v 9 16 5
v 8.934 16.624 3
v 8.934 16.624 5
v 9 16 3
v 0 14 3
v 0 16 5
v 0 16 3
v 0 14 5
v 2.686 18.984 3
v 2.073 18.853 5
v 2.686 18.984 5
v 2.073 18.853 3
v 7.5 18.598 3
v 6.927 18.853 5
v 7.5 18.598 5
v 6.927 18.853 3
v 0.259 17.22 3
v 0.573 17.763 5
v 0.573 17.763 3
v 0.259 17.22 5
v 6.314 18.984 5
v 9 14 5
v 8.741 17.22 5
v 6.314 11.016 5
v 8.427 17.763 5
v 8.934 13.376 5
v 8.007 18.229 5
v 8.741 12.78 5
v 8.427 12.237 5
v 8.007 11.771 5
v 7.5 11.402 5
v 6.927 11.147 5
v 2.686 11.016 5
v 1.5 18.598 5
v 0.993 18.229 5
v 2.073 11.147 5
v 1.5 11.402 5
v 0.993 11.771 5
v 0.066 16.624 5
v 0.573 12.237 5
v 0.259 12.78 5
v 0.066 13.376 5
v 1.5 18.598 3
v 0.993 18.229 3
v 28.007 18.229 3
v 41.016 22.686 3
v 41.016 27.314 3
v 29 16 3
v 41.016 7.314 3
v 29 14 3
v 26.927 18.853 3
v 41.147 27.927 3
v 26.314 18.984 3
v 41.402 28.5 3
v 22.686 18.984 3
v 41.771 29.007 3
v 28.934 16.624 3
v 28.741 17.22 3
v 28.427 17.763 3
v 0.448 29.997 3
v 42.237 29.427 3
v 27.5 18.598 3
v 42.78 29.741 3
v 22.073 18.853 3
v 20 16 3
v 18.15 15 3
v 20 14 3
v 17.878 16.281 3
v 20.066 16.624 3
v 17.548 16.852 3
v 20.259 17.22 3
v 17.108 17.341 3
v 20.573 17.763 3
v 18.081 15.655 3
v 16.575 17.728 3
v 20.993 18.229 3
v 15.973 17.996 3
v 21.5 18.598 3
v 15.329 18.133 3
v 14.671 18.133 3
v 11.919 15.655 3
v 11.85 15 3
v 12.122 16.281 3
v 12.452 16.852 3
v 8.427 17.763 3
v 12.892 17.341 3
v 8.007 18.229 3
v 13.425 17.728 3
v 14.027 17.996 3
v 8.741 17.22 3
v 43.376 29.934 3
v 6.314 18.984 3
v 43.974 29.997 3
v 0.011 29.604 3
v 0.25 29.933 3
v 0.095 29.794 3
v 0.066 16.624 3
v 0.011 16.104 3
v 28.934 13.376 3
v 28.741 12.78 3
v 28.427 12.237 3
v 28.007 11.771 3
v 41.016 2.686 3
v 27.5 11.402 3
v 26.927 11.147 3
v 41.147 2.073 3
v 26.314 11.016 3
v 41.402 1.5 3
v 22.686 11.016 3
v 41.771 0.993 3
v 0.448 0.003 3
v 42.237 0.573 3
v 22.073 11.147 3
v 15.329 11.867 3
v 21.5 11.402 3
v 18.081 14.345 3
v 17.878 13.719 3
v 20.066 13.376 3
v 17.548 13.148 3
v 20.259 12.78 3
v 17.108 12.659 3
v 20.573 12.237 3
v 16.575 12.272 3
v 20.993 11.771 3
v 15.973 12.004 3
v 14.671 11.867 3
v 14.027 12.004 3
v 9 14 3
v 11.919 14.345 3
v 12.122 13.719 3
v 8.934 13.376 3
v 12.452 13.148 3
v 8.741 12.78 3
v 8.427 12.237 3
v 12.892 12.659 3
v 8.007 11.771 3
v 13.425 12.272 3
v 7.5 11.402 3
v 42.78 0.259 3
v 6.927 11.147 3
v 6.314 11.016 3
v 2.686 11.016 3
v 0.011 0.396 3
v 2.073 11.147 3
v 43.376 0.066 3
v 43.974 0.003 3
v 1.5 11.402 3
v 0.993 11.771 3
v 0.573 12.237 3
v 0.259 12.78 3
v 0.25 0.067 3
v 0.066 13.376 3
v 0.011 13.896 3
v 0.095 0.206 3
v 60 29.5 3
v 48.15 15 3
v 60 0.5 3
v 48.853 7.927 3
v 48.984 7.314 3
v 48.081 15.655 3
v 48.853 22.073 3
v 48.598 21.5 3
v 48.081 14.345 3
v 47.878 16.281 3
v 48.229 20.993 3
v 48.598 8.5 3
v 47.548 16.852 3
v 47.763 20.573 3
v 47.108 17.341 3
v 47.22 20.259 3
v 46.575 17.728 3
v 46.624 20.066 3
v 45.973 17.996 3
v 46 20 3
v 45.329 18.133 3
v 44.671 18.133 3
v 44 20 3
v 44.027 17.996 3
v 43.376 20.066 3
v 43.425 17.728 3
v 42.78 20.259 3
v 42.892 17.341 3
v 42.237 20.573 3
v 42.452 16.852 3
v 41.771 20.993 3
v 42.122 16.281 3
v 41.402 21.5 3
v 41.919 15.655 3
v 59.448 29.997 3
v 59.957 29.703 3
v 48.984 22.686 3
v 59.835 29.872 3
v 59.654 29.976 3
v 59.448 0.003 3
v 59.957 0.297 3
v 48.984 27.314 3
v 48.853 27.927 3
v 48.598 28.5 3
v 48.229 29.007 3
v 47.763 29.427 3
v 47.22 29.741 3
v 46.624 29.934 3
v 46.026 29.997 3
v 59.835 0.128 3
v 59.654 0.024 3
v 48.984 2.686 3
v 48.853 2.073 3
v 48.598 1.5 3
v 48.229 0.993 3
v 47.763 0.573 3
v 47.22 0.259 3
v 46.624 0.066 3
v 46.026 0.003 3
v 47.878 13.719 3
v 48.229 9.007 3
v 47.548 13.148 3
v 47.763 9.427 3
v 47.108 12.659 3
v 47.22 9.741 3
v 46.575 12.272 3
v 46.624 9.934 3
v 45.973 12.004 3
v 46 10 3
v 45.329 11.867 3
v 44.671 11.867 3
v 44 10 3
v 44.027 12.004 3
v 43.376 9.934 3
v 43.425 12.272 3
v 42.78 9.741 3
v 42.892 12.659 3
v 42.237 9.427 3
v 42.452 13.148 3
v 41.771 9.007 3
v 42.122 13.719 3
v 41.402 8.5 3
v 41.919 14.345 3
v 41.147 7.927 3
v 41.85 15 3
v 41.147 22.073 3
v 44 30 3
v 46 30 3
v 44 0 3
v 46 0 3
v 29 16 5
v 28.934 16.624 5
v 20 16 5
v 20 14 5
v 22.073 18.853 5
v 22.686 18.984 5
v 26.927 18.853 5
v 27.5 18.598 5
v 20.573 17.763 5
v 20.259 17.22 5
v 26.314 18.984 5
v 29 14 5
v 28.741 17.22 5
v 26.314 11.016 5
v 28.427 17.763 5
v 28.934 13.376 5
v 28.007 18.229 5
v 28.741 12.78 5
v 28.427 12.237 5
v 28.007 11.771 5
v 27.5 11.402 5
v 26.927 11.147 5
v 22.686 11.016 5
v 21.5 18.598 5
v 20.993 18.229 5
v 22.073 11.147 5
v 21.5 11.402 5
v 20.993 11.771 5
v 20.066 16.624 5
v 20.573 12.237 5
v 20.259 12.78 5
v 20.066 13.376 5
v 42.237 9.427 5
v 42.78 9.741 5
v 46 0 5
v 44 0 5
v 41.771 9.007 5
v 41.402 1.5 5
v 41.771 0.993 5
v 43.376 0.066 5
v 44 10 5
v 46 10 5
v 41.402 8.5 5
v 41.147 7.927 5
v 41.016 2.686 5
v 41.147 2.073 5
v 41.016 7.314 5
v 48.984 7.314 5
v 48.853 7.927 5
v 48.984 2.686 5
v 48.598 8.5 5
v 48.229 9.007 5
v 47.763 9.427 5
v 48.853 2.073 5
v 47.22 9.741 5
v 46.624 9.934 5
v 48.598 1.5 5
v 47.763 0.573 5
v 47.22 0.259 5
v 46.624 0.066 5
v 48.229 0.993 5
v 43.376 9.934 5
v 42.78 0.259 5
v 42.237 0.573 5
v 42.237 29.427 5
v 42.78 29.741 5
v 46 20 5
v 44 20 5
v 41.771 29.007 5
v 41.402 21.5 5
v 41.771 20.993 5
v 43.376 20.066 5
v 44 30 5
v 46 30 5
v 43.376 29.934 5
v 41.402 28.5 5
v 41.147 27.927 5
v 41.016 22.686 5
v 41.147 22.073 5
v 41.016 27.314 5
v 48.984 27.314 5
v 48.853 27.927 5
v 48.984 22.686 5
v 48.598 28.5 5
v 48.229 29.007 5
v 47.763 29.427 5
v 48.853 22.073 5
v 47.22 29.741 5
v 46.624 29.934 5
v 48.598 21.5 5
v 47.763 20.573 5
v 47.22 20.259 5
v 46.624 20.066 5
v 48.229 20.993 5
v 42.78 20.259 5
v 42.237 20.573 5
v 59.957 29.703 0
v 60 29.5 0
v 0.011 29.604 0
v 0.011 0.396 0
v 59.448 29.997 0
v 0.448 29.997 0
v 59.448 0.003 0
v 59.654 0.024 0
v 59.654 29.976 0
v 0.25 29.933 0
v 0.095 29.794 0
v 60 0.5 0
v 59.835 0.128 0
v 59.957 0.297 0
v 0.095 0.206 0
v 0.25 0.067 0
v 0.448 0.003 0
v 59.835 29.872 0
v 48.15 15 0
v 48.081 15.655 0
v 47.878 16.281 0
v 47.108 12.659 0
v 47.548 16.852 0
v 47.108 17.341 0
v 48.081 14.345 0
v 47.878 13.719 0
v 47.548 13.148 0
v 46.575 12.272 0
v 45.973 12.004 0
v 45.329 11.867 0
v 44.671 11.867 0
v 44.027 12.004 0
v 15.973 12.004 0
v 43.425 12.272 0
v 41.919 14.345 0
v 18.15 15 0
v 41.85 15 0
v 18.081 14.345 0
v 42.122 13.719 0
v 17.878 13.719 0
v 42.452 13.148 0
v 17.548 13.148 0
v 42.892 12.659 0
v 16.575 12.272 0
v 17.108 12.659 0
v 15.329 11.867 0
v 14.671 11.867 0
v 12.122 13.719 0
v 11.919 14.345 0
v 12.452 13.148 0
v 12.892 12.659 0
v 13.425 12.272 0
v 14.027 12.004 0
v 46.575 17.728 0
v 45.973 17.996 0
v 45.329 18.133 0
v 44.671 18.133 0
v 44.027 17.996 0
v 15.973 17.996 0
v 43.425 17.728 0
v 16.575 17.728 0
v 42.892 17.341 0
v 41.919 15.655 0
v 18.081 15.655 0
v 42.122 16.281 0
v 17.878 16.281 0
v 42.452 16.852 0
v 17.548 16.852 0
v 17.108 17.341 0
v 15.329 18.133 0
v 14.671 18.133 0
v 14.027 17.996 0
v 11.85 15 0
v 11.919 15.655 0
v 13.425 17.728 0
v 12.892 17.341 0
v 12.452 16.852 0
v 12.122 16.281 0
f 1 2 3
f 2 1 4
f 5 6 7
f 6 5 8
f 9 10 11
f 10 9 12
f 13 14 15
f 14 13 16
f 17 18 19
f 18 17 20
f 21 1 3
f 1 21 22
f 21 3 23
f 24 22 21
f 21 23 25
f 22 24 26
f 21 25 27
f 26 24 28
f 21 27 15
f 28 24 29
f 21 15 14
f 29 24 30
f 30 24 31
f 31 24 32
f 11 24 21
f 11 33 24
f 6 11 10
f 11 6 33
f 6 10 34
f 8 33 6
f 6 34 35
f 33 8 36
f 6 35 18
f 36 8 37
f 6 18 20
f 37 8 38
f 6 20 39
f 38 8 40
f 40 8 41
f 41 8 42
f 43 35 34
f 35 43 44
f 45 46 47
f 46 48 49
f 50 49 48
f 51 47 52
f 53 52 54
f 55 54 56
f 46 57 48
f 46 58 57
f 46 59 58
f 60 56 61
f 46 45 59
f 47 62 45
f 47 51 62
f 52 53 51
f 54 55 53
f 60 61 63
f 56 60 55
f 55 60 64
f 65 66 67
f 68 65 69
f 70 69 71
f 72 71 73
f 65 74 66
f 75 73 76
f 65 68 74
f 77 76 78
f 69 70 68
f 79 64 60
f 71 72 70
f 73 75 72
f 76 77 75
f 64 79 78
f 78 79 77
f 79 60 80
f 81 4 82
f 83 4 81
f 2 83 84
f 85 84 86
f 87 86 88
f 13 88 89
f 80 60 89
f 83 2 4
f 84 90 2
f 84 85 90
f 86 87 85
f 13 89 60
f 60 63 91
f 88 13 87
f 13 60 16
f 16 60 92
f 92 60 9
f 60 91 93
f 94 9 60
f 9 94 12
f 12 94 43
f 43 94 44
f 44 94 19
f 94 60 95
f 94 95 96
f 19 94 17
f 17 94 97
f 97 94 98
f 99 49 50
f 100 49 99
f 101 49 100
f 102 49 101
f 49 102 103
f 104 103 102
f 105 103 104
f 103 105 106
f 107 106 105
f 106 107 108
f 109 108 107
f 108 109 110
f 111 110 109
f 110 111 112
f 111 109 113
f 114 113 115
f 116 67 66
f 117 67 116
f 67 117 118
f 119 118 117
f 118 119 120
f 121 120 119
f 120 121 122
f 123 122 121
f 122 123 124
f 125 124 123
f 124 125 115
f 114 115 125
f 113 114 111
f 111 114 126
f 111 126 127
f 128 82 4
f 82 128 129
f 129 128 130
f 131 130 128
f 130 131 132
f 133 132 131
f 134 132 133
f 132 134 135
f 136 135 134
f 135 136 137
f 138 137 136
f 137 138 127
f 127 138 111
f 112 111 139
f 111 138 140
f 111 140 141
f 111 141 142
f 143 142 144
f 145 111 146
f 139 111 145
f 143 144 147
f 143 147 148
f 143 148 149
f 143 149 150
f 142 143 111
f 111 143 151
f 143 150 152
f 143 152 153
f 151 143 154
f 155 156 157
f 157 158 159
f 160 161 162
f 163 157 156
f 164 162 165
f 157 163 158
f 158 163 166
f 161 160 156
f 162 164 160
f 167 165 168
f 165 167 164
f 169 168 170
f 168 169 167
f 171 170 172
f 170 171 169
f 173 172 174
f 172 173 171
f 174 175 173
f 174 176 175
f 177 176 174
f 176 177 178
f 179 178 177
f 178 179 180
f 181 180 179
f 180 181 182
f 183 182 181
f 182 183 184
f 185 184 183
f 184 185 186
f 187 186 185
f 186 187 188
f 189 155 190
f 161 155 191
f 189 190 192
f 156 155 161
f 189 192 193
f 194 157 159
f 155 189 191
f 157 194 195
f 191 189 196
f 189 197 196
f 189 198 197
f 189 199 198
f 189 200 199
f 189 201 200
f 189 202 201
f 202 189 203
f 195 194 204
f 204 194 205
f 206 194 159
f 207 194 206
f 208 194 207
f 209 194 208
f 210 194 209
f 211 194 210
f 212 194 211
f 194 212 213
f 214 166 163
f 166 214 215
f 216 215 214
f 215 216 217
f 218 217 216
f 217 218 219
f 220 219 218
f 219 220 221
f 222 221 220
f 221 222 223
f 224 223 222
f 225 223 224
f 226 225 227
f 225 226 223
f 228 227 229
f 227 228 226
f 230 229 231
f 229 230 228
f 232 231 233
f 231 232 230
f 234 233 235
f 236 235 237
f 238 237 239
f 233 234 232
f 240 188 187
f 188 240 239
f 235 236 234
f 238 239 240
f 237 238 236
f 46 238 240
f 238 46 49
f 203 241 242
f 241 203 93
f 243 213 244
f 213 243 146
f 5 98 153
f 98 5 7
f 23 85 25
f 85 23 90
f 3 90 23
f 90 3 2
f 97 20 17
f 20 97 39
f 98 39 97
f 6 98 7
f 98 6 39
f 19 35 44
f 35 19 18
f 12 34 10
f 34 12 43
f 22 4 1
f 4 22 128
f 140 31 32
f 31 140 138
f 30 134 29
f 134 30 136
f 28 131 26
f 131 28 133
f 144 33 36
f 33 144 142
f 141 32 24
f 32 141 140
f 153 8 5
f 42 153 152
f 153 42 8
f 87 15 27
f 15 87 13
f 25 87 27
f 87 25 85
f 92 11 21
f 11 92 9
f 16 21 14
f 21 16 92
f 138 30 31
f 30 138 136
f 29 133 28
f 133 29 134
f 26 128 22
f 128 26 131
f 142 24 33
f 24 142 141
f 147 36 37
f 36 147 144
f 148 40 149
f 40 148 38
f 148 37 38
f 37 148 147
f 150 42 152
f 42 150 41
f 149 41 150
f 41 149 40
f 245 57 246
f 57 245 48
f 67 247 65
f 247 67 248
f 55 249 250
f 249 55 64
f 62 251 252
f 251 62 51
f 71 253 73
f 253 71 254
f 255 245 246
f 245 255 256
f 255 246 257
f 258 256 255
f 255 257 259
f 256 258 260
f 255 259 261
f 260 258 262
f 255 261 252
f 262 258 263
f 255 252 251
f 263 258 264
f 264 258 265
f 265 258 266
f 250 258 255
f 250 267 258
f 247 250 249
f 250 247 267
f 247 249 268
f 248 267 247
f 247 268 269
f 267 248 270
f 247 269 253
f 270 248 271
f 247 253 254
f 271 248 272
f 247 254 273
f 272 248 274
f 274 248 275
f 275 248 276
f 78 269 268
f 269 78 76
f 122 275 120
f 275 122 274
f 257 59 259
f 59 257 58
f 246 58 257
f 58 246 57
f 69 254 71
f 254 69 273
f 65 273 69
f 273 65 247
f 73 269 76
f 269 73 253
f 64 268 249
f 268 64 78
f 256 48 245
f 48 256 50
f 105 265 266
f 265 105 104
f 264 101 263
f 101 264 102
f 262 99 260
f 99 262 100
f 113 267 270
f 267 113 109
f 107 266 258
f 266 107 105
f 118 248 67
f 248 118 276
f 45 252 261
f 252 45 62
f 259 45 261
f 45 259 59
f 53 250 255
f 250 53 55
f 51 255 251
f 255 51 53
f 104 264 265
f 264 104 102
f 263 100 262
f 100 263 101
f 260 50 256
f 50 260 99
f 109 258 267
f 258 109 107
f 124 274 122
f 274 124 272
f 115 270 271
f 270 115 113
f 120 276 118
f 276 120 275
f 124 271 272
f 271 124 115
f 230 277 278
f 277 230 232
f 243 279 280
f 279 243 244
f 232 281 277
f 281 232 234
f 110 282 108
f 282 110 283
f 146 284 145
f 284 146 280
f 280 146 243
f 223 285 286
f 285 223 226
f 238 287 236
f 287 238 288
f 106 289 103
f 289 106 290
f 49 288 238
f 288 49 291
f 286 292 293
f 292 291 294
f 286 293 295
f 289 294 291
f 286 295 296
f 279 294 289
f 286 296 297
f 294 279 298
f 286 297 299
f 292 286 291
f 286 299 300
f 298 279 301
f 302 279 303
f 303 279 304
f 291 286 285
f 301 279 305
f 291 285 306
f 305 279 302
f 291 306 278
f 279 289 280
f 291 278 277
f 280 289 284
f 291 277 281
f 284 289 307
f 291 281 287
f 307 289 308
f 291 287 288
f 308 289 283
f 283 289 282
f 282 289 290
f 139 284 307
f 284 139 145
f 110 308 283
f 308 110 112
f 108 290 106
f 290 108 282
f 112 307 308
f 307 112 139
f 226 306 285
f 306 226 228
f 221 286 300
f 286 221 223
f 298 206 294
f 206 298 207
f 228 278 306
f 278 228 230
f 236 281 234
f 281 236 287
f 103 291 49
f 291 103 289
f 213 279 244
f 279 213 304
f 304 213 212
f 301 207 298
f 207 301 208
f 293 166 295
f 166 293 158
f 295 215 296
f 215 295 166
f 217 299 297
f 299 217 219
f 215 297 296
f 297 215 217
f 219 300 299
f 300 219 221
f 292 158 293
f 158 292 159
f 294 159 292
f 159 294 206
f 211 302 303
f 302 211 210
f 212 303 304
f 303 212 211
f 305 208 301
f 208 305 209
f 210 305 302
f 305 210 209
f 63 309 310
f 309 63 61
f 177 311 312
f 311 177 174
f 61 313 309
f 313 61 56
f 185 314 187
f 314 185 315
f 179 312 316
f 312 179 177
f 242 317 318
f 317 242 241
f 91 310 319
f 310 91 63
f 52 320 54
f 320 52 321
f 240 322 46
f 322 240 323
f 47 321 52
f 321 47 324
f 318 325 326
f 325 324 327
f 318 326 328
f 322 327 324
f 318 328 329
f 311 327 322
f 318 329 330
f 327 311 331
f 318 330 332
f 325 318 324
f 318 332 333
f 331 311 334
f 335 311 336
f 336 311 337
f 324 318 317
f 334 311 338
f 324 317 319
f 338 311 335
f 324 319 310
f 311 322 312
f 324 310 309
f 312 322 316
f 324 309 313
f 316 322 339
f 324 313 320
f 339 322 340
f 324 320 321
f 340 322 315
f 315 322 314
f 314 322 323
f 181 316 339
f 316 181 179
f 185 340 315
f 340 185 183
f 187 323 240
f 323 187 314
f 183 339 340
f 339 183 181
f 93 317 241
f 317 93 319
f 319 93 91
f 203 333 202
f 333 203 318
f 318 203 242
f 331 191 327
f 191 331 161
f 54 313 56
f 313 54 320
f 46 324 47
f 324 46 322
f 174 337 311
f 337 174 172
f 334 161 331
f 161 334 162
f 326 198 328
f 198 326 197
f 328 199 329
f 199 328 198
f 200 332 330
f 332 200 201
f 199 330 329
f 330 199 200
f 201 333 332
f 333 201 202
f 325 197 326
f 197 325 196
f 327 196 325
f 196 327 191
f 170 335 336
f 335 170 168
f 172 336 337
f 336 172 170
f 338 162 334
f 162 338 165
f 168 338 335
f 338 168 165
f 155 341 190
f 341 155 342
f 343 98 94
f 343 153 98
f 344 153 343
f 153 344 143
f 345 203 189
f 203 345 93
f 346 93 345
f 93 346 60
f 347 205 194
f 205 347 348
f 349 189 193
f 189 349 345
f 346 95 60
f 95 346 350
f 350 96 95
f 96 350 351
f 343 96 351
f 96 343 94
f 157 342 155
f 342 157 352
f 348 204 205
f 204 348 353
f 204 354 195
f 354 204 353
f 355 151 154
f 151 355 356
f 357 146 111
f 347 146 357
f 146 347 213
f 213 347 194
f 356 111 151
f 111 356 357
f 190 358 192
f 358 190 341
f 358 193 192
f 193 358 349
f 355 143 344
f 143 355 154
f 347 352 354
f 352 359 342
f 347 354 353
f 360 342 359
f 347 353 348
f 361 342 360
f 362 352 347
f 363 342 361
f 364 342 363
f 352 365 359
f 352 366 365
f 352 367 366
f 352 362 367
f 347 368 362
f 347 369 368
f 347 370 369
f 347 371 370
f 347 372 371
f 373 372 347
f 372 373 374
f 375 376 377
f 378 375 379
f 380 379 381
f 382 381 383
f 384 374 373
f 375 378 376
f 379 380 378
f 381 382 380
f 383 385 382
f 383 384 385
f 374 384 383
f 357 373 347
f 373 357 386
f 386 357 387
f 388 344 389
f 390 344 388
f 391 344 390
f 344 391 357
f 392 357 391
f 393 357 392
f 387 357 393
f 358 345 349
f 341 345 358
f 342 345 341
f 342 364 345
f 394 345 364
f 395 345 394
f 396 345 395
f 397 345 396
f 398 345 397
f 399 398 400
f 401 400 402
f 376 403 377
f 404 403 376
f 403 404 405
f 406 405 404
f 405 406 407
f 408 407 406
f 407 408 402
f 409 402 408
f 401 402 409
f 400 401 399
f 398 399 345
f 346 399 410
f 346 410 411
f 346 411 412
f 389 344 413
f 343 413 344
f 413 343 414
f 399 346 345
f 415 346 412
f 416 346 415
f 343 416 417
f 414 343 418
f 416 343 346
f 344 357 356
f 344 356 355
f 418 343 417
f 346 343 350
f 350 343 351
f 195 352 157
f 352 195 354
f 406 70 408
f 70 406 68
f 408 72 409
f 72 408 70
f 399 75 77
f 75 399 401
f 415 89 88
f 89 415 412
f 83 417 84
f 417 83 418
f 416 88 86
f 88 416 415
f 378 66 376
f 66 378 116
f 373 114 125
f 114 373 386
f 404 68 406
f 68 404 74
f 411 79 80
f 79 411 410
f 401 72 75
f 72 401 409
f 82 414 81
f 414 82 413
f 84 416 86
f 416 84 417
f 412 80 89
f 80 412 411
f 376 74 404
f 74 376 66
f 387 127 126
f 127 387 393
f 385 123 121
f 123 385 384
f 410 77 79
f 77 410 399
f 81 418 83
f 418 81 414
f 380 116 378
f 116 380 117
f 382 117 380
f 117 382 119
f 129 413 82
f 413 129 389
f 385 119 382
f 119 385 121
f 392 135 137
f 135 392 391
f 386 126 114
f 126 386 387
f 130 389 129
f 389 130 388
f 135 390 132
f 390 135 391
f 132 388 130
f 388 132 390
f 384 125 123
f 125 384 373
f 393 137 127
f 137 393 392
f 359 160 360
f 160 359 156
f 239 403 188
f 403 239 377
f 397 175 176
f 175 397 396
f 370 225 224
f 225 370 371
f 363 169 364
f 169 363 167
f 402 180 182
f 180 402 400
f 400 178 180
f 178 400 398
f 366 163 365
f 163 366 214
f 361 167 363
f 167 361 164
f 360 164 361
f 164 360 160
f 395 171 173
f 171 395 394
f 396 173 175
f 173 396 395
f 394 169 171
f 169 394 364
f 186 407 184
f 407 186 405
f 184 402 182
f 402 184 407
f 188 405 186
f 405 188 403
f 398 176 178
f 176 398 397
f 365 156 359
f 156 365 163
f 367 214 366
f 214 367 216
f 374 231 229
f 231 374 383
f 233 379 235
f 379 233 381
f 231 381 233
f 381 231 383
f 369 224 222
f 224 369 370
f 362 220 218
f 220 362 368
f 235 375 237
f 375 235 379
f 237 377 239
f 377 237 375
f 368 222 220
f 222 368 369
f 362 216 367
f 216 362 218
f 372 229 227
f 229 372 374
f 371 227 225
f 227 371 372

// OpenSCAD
// file: ../configuration.scad
/*
	Konfiguracni soubor 3D tiskarny RebeliX X2
	
	Sledujte nas na:		  
			www.RepRap4U.cz
			www.facebook.com/RebeliX.cz
			https://twitter.com/reprap4u
			https://plus.google.com/+Reprap4uCz-3Dtiskarna-RebeliX
*/

/*================ Slic3r nastaveni ==========================*/

// Vyska vrstvy pro tisknuti dilu [mm]
layer_height = 0.3;

// Sirka vytlacovaneho materialu [mm]
extrusion_width = 0.66; //Slic3r->Print Settings->Advanced->Default extrusion width

/*==================== M6 sroub ==============================*/

// Rezerva prumeru hlavy sroubu [mm]
space = 1;

// Prumer hlavy M6 sroubu (pricte se rezerva) [mm]
M6_head_diameter = 10.6+space;
//M6_head_diameter = 12+space;

// Prumer M6 sroubu
M6_dia = 6.3;

// Vyska hlavy M6 sroubu (dulezite pro zapusteni hlavy sroubu do plastu) [mm]
M6_head_height = 3.6;
//M6_head_height = 4.5;

// Delka sroubu M6 [mm]
// M6x12
M6_lenght = 12;

// Sirka matky do profilu (pokud neni pouzita, tak 0)
//profile_nut_width = 9.5;
profile_nut_width = 0;

/*=================== Nastaveni dilu =========================*/

// Posun Z zakladny
z_base_offset = 11;

// Tloustka rohovych spojek
// 5 mm => sroub M6x14 s podlozkou
// 3 mm => sroub M6x12 s podlozkou
coupler_thickness = 3;

// Prumer 8mm tyce
rod_8mm_d = 8.2;

// Posun drzacku mezi x-motor a x-end
x_holder_position = 6.5;

// ALU profile hole width
alu_hole_width = 8;

/*======================== Motory ============================*/

// Delka motoru (ovlivni dily a delky tyci pro osy Z a Y)
//SX17-1003LQFE (doporuceno hlavne na osu Z)
motor_length = 29.5;
//SX17-1003 (doporuceno hlavne na osu Z), SX17-0503LQEF
//motor_length = 34;
//SX17-1005
//motor_length = 40;
//SX17-0905 - zde je jiz problem s velkou vyskou motoru na ose Z - musi se upravit endstop-holder
//motor_length = 48;

/*================ Remeny a remenicky ========================*/

// GT2 
belt_tooth_distance = 2;
belt_tooth_ratio = 0.5;

// T2.5
//belt_tooth_distance = 2.5;
//belt_tooth_ratio = 0.68;
// main file
// RebeliX-T3DD
//
// corner-coupler
// GNU GPL v3
// Marek Žehra <marek@zehra.cz>
// http://www.tiskni3ddoma.cz
// Inspired by RebeliX

include <../configuration.scad>

module rounded_cube(size=[20,10,10],corner_radius=2){
    translate([corner_radius,corner_radius,0])hull(){
        for(x=[0,size[0]-corner_radius*2],y=[0,size[1]-corner_radius*2]) {
            translate([x,y,0])cylinder(r=corner_radius,h=size[2]);
        }
    }
}


module mount_jig(size=[30,8,2],middle_space=8) {
    rounded_cube(size=[size[0]/2-middle_space/2,size[1],size[2]],corner_radius=3);
    translate([size[0]/2+middle_space/2,0,0])
    rounded_cube(size=[size[0]/2-middle_space/2,size[1],size[2]],corner_radius=3);
}

module corner_coupler(size=[60,30,4],mount_hole_width=8,mount_height=2) {
  difference(){
	union(){
		rounded_cube([size[0],size[1],size[2]],corner_radius=0.5,$fn=15);
		
        translate([0,size[1]/2-mount_hole_width/2,size[2]])
        mount_jig(size=[size[1]-1,mount_hole_width,mount_height],middle_space=11,$fn=30);
        translate([size[0]/2+size[1]/2+mount_hole_width/2,0,size[2]])
        rotate([0,0,90])mount_jig(size=[size[1],mount_hole_width,mount_height],middle_space=10,$fn=30);
	}
		
	// Otvory pro srouby
    translate([size[1]/2,size[1]/2,-1]){
        cylinder(h=size[2]+2,r=M6_dia/2,$fn=30);
        translate([size[0]/2,0,0])cylinder(h=size[2]+2,r=M6_dia/2,$fn=30);
    }
  }
}

corner_coupler(size=[60,30,coupler_thickness],mount_hole_width=alu_hole_width,mount_height=2);
